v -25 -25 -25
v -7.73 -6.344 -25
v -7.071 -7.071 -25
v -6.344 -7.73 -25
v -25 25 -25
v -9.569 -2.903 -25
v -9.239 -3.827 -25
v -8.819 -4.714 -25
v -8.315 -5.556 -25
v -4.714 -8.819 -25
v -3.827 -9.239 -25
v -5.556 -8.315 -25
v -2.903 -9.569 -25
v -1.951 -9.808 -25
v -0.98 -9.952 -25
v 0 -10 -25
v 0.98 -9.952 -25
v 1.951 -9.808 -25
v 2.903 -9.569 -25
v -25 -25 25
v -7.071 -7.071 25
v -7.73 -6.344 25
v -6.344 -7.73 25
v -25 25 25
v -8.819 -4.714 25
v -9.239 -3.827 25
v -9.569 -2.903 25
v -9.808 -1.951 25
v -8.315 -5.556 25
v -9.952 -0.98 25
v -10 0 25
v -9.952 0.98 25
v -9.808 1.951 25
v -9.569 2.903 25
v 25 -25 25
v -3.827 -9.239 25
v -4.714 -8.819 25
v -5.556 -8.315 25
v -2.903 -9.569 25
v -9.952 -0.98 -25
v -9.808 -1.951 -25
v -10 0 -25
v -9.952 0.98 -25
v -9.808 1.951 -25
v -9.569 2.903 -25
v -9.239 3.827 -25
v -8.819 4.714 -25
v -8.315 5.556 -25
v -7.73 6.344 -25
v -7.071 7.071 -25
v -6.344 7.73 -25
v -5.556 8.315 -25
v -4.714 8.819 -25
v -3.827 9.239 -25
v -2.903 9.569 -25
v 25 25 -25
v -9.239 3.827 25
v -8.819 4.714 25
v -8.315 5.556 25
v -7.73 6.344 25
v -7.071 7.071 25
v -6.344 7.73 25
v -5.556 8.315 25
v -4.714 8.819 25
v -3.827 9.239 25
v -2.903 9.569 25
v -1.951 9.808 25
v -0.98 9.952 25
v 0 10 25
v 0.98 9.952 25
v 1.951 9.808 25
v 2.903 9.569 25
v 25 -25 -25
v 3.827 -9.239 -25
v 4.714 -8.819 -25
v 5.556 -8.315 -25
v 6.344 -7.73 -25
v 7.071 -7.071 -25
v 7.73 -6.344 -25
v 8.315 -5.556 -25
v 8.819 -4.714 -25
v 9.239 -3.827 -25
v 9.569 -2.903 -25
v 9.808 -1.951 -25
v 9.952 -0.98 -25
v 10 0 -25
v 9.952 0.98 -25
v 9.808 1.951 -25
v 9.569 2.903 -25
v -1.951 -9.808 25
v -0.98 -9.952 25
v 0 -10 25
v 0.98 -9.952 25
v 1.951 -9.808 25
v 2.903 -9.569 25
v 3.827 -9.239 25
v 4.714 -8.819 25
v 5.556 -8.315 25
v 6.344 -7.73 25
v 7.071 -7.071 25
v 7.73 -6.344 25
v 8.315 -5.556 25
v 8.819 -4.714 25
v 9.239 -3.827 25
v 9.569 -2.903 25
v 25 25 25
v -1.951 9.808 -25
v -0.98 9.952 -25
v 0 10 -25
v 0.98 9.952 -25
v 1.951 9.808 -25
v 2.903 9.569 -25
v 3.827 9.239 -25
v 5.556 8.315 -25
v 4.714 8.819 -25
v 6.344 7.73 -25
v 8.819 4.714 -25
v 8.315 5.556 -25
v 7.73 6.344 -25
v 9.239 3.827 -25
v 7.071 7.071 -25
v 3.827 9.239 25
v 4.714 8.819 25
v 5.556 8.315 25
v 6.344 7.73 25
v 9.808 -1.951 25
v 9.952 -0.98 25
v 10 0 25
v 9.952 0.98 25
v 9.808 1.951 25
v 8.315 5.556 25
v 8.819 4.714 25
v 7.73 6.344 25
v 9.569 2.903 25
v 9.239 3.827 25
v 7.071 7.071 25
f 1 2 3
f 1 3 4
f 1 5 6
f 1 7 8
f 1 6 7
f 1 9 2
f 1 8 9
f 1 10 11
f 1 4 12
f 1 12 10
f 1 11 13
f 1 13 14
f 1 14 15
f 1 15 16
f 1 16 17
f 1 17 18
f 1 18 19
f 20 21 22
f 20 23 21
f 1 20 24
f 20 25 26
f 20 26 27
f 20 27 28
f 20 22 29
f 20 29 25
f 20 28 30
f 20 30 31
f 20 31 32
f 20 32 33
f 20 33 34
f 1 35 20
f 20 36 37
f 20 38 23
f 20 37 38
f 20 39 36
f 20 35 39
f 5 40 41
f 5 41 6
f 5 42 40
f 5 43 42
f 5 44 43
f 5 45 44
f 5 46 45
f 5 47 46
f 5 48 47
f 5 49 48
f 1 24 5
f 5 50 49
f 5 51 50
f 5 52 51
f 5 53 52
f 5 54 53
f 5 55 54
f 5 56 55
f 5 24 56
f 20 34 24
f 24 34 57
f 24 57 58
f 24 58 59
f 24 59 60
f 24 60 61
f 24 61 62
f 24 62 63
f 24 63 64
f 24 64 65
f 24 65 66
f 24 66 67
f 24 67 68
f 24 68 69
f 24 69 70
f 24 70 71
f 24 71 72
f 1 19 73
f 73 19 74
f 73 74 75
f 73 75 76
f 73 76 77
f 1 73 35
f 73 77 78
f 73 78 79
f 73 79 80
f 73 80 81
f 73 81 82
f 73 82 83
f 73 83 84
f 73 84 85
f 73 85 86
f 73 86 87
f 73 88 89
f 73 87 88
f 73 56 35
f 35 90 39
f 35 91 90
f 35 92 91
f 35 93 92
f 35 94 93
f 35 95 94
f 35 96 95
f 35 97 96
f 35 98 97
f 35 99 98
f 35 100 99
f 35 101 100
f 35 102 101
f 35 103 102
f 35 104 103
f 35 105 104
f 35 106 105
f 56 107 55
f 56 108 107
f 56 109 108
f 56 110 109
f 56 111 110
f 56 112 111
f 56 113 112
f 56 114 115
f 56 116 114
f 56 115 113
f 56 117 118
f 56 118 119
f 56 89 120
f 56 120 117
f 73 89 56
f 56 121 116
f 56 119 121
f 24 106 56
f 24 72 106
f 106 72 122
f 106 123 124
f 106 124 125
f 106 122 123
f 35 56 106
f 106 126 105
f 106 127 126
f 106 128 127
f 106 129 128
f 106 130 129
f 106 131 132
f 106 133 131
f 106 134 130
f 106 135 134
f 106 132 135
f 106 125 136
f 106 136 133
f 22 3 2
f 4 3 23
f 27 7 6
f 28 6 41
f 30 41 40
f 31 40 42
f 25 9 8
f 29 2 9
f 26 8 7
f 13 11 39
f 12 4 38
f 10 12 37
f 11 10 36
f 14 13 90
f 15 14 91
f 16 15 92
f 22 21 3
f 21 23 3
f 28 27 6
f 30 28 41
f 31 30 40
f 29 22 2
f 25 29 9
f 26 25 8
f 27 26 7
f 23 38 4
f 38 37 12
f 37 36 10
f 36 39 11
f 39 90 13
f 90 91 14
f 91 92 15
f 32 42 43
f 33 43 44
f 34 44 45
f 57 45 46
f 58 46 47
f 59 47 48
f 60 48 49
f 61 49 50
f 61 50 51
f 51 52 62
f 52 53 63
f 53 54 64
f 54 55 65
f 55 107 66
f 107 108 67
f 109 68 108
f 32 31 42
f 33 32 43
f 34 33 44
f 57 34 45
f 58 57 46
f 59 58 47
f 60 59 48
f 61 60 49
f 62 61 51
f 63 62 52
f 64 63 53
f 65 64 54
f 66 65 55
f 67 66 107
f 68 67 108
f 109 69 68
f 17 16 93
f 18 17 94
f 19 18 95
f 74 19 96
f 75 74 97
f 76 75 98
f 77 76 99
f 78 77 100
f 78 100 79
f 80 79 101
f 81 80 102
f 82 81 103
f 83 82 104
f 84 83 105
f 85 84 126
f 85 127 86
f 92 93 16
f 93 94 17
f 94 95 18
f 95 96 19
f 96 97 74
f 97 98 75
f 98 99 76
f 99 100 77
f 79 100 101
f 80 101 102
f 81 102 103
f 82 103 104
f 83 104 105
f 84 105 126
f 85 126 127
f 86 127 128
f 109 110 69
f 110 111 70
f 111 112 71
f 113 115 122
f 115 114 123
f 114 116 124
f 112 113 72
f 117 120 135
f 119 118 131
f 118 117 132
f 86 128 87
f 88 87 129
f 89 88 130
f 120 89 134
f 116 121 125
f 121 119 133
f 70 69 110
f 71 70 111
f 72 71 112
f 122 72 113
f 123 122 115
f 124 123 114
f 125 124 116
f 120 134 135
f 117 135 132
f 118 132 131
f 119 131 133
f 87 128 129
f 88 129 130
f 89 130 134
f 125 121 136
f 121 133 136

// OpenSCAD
difference() {
    cube([50, 50, 50], center = true);

    cylinder(
        h = 50,
        d = 20,
        center = true,
        $fn = 64
    );
}
